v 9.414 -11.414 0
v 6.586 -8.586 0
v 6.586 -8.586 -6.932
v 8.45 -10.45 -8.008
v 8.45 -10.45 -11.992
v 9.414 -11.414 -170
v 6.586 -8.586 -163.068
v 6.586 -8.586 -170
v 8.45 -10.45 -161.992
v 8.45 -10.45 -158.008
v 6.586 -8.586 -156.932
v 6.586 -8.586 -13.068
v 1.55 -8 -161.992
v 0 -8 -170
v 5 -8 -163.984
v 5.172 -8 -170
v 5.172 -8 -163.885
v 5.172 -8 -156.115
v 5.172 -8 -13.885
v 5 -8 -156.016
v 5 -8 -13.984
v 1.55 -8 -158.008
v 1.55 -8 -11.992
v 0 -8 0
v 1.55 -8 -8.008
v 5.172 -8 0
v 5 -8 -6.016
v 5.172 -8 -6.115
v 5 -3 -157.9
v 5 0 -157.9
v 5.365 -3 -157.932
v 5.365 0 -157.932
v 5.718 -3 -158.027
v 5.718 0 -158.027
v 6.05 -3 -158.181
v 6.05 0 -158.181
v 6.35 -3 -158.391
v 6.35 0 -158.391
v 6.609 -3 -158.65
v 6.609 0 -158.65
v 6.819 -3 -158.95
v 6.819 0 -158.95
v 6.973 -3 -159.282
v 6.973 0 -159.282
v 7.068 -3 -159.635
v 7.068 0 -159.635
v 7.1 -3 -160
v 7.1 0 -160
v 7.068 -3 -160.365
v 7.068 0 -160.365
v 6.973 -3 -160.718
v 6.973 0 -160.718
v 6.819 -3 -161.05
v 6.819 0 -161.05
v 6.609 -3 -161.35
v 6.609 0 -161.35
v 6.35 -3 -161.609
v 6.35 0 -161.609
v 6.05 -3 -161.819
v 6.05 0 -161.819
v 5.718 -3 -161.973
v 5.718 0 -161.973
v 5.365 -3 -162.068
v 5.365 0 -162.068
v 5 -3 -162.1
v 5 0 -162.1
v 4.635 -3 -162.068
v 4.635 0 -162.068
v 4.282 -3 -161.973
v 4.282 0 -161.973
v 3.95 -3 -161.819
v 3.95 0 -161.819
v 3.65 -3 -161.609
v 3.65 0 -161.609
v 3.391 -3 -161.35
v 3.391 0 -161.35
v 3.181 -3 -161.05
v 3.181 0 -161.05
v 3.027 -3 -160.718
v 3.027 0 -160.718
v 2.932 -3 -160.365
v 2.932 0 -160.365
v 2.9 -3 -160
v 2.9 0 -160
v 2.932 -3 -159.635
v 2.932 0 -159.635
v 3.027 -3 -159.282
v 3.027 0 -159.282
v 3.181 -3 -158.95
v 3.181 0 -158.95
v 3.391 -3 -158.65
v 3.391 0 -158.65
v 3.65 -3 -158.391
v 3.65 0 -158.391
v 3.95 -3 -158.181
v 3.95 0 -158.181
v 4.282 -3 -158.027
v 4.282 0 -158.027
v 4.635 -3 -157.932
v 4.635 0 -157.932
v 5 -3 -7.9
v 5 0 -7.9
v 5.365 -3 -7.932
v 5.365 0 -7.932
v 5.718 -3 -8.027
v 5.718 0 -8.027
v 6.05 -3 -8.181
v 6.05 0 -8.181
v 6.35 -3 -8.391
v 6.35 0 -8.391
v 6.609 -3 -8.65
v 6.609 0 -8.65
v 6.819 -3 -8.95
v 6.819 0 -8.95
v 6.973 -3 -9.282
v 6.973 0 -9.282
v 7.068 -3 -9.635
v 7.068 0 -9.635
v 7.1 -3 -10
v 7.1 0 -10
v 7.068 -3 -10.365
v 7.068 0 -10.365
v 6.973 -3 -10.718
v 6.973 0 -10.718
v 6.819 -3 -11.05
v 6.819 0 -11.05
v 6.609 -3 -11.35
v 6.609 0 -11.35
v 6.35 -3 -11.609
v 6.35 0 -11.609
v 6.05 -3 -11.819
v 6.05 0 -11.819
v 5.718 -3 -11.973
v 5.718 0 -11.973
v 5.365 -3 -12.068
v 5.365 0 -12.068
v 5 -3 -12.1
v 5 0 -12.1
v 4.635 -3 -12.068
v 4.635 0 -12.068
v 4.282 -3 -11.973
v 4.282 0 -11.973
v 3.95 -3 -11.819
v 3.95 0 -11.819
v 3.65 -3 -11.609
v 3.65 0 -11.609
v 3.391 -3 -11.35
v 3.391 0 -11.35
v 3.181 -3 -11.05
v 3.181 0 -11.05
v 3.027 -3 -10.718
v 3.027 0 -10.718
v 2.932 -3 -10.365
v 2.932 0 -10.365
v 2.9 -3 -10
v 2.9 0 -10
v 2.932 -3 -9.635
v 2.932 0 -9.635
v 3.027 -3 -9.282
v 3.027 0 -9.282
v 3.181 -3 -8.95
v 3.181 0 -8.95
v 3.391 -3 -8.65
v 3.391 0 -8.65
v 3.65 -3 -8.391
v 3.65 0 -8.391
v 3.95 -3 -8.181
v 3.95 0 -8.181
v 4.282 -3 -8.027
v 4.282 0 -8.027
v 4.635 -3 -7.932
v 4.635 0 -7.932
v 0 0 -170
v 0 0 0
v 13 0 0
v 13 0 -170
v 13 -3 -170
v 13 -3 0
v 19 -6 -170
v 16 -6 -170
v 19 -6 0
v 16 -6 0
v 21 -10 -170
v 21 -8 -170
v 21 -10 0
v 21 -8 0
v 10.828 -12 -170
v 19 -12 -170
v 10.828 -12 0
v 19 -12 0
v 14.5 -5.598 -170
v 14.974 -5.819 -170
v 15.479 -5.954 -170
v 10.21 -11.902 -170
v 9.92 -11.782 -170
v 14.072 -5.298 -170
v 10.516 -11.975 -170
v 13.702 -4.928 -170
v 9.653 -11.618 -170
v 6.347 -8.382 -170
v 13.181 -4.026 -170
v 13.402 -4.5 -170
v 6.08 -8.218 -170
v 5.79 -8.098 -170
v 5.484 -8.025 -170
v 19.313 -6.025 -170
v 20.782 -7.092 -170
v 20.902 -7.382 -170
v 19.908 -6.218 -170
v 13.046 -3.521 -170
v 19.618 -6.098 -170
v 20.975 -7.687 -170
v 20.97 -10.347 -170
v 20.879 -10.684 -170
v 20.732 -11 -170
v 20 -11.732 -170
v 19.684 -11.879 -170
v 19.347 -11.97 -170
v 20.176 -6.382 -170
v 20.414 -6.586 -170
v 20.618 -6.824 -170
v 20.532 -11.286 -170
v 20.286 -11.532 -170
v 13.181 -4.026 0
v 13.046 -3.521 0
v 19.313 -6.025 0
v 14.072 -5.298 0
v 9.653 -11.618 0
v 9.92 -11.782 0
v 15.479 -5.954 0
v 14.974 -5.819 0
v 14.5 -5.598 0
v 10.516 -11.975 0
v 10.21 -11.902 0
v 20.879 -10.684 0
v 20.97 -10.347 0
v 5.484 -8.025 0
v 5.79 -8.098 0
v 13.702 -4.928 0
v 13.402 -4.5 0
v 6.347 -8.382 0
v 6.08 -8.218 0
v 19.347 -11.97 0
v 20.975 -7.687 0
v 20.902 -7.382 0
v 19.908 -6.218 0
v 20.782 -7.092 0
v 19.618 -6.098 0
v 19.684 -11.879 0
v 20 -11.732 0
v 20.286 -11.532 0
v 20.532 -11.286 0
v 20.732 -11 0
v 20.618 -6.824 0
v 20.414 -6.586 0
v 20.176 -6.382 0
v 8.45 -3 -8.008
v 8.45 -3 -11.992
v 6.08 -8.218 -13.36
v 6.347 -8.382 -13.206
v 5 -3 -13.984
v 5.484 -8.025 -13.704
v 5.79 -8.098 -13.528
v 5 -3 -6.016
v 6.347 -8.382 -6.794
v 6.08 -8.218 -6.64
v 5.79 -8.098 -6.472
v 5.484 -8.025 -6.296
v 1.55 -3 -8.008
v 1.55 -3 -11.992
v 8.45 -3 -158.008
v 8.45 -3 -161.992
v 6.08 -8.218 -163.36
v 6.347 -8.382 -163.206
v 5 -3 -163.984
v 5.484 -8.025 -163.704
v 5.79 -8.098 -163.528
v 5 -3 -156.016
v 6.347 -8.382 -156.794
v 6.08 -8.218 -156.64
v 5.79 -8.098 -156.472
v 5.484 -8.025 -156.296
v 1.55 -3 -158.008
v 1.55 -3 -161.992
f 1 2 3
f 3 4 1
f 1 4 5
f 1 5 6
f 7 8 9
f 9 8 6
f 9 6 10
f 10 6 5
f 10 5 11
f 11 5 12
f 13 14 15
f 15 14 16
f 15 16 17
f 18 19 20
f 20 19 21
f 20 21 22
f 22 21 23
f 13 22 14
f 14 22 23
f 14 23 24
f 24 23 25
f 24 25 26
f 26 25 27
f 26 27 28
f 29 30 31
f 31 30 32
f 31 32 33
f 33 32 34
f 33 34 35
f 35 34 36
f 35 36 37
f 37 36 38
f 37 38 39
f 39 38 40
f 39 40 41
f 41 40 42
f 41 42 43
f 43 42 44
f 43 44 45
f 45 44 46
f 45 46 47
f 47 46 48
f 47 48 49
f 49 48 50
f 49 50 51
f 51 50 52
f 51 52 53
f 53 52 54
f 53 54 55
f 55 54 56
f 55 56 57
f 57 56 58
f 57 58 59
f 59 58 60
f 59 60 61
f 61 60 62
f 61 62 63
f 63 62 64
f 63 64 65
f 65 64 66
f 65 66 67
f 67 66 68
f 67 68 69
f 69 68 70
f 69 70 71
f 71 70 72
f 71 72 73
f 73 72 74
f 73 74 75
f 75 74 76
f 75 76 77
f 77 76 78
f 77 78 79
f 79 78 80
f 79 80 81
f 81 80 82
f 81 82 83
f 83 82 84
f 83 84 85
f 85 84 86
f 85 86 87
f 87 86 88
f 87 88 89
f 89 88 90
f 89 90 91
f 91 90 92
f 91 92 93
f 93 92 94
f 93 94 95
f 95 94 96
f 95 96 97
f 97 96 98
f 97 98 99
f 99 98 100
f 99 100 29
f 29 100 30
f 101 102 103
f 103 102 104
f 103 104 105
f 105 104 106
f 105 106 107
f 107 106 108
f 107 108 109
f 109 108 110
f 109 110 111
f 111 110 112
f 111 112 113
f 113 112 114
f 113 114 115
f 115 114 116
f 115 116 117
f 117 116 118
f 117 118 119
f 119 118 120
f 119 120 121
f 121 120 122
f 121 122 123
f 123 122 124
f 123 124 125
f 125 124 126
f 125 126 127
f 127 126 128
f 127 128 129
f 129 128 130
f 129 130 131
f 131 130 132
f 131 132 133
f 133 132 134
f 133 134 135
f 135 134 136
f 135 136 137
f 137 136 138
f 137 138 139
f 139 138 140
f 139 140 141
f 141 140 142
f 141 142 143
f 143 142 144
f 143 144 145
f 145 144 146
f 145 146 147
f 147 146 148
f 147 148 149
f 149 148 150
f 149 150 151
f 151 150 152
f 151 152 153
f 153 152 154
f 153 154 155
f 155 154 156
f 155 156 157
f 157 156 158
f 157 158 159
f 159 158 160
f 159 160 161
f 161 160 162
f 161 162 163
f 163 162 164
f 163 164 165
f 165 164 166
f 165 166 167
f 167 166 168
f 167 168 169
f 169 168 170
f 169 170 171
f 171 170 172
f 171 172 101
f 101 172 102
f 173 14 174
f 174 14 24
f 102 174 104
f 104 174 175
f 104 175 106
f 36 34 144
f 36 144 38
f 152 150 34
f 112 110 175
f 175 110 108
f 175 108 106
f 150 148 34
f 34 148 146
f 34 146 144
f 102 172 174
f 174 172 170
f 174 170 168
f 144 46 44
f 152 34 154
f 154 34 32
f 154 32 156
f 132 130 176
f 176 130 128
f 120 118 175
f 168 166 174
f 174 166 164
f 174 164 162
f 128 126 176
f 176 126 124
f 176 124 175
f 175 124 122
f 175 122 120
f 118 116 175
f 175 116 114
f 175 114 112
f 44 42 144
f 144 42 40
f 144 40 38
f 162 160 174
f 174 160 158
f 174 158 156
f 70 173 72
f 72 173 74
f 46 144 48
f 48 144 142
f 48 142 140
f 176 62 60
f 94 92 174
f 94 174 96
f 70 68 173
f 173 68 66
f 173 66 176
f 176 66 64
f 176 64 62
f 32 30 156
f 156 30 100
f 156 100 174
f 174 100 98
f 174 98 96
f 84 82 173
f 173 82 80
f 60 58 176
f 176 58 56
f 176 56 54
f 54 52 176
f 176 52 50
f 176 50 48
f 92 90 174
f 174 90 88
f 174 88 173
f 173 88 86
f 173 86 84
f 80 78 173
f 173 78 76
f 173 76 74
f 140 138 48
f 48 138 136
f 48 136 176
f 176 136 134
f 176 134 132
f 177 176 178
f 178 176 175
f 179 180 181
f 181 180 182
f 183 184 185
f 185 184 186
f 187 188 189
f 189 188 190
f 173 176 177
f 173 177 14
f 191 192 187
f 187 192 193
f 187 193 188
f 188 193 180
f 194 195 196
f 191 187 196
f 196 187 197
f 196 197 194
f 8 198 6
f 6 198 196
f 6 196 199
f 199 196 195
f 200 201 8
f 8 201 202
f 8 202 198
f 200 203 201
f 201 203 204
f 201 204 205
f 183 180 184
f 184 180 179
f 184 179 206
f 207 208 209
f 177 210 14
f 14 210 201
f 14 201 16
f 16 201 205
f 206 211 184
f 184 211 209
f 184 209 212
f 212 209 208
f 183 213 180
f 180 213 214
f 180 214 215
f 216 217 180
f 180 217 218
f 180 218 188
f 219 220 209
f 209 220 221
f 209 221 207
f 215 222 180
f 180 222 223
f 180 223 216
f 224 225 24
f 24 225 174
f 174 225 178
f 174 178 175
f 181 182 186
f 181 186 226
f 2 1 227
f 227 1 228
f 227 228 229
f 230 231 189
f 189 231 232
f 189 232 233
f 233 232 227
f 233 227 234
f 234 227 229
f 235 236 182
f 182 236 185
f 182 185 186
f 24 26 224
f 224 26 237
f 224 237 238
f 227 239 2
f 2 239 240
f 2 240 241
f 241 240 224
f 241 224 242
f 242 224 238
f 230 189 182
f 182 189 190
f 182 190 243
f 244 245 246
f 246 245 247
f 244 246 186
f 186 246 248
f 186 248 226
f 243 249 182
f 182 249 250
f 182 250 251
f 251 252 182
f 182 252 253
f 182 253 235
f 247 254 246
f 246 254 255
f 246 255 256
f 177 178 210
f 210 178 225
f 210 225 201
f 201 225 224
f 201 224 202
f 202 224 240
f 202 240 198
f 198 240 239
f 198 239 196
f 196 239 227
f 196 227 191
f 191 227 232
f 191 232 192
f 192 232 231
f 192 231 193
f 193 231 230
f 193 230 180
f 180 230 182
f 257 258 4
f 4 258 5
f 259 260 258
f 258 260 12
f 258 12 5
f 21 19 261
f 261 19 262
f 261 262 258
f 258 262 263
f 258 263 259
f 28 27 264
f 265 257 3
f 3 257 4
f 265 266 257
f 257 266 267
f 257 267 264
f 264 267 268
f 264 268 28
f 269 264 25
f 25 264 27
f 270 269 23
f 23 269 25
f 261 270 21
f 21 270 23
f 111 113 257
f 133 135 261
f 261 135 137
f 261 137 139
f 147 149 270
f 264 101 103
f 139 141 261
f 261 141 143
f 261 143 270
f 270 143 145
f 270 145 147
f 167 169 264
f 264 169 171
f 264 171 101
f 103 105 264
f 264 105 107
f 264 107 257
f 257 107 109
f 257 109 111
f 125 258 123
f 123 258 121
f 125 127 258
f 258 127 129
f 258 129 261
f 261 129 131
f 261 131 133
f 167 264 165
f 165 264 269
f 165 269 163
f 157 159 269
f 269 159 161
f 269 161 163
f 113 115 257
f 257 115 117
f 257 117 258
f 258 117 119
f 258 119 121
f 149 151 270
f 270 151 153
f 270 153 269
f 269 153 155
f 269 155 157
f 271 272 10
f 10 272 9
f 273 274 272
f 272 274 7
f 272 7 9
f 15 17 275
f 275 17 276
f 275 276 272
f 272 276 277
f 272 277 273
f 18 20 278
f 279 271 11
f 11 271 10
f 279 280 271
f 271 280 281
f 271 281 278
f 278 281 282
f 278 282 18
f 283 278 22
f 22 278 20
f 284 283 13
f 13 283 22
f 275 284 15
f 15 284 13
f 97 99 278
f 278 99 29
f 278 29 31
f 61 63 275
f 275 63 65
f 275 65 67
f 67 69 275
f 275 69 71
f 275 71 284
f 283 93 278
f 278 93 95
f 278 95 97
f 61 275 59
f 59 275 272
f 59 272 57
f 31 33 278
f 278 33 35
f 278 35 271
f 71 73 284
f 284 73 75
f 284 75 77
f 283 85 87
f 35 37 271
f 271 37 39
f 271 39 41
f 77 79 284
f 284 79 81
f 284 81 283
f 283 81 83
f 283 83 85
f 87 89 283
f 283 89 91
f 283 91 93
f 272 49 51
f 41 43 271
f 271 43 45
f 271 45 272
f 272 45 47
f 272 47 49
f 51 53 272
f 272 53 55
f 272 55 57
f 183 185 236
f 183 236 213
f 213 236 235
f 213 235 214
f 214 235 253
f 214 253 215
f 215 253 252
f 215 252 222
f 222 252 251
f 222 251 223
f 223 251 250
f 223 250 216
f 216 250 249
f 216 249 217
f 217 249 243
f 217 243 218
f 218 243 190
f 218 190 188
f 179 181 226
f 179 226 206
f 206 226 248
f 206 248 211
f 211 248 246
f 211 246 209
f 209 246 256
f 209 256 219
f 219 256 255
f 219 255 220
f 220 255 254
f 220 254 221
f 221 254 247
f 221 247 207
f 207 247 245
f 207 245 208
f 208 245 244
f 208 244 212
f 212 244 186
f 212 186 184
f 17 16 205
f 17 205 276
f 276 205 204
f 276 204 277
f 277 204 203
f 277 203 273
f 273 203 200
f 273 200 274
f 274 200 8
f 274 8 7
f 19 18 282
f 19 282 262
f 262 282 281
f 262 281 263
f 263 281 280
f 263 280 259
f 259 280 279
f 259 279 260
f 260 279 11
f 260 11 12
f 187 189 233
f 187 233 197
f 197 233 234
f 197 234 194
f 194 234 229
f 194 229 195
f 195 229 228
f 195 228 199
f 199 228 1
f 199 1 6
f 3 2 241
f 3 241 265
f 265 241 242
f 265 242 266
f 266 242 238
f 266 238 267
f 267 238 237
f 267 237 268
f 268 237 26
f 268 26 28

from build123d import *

# Parameters (mm, degrees)
BOSS_EXTRUDE1_DEPTH = 170
FILLET2_R           = 3
SKETCH2_R           = 2.1
CUT_EXTRUDE1_DEPTH  = 8
CUT_EXTRUDE2_START  = -12
CUT_EXTRUDE2_DEPTH  = 9
FILLET3_R           = 2
FILLET4_R           = 2


with BuildPart() as part:
    # Sketch1 → Boss-Extrude1 (new body)
    with BuildSketch(Plane.XY):
        Polygon((13, -6), (13, 0), (0, 0), (0, -8), (6, -8), (10, -12), (21, -12), (21, -6), align=None)
    extrude(amount=-BOSS_EXTRUDE1_DEPTH)

    # Fillet2
    fillet2_edges = [part.edges().sort_by_distance(p)[0] for p in [
        (13, -6, -85),
    ]]
    fillet(fillet2_edges, radius=FILLET2_R)

    # Sketch2 → Cut-Extrude1 (cut)
    with BuildSketch(Plane(origin=(0, 0, 0), x_dir=(1, 0, 0), z_dir=(0, 1, 0))):
        with Locations(Location((5, 10, 0), (0, 0, 270))):
            Circle(SKETCH2_R)
        with Locations(Location((5, 160, 0), (0, 0, 270))):
            Circle(SKETCH2_R)
    extrude(amount=-CUT_EXTRUDE1_DEPTH, mode=Mode.SUBTRACT)

    # Sketch3 → Cut-Extrude2 (cut)
    with BuildSketch(Plane(origin=(0, 0, 0), x_dir=(1, 0, 0), z_dir=(0, 1, 0)).offset(CUT_EXTRUDE2_START)):
        Polygon((1.55, 11.991858429), (1.55, 8.008141571), (5, 6.016283143), (8.45, 8.008141571), (8.45, 11.991858429), (5, 13.983716857), align=None)
        Polygon((1.55, 161.991858429), (1.55, 158.008141571), (5, 156.016283143), (8.45, 158.008141571), (8.45, 161.991858429), (5, 163.983716857), align=None)
    extrude(amount=CUT_EXTRUDE2_DEPTH, mode=Mode.SUBTRACT)

    # Fillet3
    fillet3_edges = [part.edges().sort_by_distance(p)[0] for p in [
        (21, -6, -85),
        (21, -12, -85),
    ]]
    fillet(fillet3_edges, radius=FILLET3_R)

    # Fillet4
    fillet4_edges = [part.edges().sort_by_distance(p)[0] for p in [
        (10, -12, -85),
        (6, -8, -166.703183294),
        (6, -8, -85),
        (6, -8, -3.296816706),
    ]]
    fillet(fillet4_edges, radius=FILLET4_R)


solid = part.part
